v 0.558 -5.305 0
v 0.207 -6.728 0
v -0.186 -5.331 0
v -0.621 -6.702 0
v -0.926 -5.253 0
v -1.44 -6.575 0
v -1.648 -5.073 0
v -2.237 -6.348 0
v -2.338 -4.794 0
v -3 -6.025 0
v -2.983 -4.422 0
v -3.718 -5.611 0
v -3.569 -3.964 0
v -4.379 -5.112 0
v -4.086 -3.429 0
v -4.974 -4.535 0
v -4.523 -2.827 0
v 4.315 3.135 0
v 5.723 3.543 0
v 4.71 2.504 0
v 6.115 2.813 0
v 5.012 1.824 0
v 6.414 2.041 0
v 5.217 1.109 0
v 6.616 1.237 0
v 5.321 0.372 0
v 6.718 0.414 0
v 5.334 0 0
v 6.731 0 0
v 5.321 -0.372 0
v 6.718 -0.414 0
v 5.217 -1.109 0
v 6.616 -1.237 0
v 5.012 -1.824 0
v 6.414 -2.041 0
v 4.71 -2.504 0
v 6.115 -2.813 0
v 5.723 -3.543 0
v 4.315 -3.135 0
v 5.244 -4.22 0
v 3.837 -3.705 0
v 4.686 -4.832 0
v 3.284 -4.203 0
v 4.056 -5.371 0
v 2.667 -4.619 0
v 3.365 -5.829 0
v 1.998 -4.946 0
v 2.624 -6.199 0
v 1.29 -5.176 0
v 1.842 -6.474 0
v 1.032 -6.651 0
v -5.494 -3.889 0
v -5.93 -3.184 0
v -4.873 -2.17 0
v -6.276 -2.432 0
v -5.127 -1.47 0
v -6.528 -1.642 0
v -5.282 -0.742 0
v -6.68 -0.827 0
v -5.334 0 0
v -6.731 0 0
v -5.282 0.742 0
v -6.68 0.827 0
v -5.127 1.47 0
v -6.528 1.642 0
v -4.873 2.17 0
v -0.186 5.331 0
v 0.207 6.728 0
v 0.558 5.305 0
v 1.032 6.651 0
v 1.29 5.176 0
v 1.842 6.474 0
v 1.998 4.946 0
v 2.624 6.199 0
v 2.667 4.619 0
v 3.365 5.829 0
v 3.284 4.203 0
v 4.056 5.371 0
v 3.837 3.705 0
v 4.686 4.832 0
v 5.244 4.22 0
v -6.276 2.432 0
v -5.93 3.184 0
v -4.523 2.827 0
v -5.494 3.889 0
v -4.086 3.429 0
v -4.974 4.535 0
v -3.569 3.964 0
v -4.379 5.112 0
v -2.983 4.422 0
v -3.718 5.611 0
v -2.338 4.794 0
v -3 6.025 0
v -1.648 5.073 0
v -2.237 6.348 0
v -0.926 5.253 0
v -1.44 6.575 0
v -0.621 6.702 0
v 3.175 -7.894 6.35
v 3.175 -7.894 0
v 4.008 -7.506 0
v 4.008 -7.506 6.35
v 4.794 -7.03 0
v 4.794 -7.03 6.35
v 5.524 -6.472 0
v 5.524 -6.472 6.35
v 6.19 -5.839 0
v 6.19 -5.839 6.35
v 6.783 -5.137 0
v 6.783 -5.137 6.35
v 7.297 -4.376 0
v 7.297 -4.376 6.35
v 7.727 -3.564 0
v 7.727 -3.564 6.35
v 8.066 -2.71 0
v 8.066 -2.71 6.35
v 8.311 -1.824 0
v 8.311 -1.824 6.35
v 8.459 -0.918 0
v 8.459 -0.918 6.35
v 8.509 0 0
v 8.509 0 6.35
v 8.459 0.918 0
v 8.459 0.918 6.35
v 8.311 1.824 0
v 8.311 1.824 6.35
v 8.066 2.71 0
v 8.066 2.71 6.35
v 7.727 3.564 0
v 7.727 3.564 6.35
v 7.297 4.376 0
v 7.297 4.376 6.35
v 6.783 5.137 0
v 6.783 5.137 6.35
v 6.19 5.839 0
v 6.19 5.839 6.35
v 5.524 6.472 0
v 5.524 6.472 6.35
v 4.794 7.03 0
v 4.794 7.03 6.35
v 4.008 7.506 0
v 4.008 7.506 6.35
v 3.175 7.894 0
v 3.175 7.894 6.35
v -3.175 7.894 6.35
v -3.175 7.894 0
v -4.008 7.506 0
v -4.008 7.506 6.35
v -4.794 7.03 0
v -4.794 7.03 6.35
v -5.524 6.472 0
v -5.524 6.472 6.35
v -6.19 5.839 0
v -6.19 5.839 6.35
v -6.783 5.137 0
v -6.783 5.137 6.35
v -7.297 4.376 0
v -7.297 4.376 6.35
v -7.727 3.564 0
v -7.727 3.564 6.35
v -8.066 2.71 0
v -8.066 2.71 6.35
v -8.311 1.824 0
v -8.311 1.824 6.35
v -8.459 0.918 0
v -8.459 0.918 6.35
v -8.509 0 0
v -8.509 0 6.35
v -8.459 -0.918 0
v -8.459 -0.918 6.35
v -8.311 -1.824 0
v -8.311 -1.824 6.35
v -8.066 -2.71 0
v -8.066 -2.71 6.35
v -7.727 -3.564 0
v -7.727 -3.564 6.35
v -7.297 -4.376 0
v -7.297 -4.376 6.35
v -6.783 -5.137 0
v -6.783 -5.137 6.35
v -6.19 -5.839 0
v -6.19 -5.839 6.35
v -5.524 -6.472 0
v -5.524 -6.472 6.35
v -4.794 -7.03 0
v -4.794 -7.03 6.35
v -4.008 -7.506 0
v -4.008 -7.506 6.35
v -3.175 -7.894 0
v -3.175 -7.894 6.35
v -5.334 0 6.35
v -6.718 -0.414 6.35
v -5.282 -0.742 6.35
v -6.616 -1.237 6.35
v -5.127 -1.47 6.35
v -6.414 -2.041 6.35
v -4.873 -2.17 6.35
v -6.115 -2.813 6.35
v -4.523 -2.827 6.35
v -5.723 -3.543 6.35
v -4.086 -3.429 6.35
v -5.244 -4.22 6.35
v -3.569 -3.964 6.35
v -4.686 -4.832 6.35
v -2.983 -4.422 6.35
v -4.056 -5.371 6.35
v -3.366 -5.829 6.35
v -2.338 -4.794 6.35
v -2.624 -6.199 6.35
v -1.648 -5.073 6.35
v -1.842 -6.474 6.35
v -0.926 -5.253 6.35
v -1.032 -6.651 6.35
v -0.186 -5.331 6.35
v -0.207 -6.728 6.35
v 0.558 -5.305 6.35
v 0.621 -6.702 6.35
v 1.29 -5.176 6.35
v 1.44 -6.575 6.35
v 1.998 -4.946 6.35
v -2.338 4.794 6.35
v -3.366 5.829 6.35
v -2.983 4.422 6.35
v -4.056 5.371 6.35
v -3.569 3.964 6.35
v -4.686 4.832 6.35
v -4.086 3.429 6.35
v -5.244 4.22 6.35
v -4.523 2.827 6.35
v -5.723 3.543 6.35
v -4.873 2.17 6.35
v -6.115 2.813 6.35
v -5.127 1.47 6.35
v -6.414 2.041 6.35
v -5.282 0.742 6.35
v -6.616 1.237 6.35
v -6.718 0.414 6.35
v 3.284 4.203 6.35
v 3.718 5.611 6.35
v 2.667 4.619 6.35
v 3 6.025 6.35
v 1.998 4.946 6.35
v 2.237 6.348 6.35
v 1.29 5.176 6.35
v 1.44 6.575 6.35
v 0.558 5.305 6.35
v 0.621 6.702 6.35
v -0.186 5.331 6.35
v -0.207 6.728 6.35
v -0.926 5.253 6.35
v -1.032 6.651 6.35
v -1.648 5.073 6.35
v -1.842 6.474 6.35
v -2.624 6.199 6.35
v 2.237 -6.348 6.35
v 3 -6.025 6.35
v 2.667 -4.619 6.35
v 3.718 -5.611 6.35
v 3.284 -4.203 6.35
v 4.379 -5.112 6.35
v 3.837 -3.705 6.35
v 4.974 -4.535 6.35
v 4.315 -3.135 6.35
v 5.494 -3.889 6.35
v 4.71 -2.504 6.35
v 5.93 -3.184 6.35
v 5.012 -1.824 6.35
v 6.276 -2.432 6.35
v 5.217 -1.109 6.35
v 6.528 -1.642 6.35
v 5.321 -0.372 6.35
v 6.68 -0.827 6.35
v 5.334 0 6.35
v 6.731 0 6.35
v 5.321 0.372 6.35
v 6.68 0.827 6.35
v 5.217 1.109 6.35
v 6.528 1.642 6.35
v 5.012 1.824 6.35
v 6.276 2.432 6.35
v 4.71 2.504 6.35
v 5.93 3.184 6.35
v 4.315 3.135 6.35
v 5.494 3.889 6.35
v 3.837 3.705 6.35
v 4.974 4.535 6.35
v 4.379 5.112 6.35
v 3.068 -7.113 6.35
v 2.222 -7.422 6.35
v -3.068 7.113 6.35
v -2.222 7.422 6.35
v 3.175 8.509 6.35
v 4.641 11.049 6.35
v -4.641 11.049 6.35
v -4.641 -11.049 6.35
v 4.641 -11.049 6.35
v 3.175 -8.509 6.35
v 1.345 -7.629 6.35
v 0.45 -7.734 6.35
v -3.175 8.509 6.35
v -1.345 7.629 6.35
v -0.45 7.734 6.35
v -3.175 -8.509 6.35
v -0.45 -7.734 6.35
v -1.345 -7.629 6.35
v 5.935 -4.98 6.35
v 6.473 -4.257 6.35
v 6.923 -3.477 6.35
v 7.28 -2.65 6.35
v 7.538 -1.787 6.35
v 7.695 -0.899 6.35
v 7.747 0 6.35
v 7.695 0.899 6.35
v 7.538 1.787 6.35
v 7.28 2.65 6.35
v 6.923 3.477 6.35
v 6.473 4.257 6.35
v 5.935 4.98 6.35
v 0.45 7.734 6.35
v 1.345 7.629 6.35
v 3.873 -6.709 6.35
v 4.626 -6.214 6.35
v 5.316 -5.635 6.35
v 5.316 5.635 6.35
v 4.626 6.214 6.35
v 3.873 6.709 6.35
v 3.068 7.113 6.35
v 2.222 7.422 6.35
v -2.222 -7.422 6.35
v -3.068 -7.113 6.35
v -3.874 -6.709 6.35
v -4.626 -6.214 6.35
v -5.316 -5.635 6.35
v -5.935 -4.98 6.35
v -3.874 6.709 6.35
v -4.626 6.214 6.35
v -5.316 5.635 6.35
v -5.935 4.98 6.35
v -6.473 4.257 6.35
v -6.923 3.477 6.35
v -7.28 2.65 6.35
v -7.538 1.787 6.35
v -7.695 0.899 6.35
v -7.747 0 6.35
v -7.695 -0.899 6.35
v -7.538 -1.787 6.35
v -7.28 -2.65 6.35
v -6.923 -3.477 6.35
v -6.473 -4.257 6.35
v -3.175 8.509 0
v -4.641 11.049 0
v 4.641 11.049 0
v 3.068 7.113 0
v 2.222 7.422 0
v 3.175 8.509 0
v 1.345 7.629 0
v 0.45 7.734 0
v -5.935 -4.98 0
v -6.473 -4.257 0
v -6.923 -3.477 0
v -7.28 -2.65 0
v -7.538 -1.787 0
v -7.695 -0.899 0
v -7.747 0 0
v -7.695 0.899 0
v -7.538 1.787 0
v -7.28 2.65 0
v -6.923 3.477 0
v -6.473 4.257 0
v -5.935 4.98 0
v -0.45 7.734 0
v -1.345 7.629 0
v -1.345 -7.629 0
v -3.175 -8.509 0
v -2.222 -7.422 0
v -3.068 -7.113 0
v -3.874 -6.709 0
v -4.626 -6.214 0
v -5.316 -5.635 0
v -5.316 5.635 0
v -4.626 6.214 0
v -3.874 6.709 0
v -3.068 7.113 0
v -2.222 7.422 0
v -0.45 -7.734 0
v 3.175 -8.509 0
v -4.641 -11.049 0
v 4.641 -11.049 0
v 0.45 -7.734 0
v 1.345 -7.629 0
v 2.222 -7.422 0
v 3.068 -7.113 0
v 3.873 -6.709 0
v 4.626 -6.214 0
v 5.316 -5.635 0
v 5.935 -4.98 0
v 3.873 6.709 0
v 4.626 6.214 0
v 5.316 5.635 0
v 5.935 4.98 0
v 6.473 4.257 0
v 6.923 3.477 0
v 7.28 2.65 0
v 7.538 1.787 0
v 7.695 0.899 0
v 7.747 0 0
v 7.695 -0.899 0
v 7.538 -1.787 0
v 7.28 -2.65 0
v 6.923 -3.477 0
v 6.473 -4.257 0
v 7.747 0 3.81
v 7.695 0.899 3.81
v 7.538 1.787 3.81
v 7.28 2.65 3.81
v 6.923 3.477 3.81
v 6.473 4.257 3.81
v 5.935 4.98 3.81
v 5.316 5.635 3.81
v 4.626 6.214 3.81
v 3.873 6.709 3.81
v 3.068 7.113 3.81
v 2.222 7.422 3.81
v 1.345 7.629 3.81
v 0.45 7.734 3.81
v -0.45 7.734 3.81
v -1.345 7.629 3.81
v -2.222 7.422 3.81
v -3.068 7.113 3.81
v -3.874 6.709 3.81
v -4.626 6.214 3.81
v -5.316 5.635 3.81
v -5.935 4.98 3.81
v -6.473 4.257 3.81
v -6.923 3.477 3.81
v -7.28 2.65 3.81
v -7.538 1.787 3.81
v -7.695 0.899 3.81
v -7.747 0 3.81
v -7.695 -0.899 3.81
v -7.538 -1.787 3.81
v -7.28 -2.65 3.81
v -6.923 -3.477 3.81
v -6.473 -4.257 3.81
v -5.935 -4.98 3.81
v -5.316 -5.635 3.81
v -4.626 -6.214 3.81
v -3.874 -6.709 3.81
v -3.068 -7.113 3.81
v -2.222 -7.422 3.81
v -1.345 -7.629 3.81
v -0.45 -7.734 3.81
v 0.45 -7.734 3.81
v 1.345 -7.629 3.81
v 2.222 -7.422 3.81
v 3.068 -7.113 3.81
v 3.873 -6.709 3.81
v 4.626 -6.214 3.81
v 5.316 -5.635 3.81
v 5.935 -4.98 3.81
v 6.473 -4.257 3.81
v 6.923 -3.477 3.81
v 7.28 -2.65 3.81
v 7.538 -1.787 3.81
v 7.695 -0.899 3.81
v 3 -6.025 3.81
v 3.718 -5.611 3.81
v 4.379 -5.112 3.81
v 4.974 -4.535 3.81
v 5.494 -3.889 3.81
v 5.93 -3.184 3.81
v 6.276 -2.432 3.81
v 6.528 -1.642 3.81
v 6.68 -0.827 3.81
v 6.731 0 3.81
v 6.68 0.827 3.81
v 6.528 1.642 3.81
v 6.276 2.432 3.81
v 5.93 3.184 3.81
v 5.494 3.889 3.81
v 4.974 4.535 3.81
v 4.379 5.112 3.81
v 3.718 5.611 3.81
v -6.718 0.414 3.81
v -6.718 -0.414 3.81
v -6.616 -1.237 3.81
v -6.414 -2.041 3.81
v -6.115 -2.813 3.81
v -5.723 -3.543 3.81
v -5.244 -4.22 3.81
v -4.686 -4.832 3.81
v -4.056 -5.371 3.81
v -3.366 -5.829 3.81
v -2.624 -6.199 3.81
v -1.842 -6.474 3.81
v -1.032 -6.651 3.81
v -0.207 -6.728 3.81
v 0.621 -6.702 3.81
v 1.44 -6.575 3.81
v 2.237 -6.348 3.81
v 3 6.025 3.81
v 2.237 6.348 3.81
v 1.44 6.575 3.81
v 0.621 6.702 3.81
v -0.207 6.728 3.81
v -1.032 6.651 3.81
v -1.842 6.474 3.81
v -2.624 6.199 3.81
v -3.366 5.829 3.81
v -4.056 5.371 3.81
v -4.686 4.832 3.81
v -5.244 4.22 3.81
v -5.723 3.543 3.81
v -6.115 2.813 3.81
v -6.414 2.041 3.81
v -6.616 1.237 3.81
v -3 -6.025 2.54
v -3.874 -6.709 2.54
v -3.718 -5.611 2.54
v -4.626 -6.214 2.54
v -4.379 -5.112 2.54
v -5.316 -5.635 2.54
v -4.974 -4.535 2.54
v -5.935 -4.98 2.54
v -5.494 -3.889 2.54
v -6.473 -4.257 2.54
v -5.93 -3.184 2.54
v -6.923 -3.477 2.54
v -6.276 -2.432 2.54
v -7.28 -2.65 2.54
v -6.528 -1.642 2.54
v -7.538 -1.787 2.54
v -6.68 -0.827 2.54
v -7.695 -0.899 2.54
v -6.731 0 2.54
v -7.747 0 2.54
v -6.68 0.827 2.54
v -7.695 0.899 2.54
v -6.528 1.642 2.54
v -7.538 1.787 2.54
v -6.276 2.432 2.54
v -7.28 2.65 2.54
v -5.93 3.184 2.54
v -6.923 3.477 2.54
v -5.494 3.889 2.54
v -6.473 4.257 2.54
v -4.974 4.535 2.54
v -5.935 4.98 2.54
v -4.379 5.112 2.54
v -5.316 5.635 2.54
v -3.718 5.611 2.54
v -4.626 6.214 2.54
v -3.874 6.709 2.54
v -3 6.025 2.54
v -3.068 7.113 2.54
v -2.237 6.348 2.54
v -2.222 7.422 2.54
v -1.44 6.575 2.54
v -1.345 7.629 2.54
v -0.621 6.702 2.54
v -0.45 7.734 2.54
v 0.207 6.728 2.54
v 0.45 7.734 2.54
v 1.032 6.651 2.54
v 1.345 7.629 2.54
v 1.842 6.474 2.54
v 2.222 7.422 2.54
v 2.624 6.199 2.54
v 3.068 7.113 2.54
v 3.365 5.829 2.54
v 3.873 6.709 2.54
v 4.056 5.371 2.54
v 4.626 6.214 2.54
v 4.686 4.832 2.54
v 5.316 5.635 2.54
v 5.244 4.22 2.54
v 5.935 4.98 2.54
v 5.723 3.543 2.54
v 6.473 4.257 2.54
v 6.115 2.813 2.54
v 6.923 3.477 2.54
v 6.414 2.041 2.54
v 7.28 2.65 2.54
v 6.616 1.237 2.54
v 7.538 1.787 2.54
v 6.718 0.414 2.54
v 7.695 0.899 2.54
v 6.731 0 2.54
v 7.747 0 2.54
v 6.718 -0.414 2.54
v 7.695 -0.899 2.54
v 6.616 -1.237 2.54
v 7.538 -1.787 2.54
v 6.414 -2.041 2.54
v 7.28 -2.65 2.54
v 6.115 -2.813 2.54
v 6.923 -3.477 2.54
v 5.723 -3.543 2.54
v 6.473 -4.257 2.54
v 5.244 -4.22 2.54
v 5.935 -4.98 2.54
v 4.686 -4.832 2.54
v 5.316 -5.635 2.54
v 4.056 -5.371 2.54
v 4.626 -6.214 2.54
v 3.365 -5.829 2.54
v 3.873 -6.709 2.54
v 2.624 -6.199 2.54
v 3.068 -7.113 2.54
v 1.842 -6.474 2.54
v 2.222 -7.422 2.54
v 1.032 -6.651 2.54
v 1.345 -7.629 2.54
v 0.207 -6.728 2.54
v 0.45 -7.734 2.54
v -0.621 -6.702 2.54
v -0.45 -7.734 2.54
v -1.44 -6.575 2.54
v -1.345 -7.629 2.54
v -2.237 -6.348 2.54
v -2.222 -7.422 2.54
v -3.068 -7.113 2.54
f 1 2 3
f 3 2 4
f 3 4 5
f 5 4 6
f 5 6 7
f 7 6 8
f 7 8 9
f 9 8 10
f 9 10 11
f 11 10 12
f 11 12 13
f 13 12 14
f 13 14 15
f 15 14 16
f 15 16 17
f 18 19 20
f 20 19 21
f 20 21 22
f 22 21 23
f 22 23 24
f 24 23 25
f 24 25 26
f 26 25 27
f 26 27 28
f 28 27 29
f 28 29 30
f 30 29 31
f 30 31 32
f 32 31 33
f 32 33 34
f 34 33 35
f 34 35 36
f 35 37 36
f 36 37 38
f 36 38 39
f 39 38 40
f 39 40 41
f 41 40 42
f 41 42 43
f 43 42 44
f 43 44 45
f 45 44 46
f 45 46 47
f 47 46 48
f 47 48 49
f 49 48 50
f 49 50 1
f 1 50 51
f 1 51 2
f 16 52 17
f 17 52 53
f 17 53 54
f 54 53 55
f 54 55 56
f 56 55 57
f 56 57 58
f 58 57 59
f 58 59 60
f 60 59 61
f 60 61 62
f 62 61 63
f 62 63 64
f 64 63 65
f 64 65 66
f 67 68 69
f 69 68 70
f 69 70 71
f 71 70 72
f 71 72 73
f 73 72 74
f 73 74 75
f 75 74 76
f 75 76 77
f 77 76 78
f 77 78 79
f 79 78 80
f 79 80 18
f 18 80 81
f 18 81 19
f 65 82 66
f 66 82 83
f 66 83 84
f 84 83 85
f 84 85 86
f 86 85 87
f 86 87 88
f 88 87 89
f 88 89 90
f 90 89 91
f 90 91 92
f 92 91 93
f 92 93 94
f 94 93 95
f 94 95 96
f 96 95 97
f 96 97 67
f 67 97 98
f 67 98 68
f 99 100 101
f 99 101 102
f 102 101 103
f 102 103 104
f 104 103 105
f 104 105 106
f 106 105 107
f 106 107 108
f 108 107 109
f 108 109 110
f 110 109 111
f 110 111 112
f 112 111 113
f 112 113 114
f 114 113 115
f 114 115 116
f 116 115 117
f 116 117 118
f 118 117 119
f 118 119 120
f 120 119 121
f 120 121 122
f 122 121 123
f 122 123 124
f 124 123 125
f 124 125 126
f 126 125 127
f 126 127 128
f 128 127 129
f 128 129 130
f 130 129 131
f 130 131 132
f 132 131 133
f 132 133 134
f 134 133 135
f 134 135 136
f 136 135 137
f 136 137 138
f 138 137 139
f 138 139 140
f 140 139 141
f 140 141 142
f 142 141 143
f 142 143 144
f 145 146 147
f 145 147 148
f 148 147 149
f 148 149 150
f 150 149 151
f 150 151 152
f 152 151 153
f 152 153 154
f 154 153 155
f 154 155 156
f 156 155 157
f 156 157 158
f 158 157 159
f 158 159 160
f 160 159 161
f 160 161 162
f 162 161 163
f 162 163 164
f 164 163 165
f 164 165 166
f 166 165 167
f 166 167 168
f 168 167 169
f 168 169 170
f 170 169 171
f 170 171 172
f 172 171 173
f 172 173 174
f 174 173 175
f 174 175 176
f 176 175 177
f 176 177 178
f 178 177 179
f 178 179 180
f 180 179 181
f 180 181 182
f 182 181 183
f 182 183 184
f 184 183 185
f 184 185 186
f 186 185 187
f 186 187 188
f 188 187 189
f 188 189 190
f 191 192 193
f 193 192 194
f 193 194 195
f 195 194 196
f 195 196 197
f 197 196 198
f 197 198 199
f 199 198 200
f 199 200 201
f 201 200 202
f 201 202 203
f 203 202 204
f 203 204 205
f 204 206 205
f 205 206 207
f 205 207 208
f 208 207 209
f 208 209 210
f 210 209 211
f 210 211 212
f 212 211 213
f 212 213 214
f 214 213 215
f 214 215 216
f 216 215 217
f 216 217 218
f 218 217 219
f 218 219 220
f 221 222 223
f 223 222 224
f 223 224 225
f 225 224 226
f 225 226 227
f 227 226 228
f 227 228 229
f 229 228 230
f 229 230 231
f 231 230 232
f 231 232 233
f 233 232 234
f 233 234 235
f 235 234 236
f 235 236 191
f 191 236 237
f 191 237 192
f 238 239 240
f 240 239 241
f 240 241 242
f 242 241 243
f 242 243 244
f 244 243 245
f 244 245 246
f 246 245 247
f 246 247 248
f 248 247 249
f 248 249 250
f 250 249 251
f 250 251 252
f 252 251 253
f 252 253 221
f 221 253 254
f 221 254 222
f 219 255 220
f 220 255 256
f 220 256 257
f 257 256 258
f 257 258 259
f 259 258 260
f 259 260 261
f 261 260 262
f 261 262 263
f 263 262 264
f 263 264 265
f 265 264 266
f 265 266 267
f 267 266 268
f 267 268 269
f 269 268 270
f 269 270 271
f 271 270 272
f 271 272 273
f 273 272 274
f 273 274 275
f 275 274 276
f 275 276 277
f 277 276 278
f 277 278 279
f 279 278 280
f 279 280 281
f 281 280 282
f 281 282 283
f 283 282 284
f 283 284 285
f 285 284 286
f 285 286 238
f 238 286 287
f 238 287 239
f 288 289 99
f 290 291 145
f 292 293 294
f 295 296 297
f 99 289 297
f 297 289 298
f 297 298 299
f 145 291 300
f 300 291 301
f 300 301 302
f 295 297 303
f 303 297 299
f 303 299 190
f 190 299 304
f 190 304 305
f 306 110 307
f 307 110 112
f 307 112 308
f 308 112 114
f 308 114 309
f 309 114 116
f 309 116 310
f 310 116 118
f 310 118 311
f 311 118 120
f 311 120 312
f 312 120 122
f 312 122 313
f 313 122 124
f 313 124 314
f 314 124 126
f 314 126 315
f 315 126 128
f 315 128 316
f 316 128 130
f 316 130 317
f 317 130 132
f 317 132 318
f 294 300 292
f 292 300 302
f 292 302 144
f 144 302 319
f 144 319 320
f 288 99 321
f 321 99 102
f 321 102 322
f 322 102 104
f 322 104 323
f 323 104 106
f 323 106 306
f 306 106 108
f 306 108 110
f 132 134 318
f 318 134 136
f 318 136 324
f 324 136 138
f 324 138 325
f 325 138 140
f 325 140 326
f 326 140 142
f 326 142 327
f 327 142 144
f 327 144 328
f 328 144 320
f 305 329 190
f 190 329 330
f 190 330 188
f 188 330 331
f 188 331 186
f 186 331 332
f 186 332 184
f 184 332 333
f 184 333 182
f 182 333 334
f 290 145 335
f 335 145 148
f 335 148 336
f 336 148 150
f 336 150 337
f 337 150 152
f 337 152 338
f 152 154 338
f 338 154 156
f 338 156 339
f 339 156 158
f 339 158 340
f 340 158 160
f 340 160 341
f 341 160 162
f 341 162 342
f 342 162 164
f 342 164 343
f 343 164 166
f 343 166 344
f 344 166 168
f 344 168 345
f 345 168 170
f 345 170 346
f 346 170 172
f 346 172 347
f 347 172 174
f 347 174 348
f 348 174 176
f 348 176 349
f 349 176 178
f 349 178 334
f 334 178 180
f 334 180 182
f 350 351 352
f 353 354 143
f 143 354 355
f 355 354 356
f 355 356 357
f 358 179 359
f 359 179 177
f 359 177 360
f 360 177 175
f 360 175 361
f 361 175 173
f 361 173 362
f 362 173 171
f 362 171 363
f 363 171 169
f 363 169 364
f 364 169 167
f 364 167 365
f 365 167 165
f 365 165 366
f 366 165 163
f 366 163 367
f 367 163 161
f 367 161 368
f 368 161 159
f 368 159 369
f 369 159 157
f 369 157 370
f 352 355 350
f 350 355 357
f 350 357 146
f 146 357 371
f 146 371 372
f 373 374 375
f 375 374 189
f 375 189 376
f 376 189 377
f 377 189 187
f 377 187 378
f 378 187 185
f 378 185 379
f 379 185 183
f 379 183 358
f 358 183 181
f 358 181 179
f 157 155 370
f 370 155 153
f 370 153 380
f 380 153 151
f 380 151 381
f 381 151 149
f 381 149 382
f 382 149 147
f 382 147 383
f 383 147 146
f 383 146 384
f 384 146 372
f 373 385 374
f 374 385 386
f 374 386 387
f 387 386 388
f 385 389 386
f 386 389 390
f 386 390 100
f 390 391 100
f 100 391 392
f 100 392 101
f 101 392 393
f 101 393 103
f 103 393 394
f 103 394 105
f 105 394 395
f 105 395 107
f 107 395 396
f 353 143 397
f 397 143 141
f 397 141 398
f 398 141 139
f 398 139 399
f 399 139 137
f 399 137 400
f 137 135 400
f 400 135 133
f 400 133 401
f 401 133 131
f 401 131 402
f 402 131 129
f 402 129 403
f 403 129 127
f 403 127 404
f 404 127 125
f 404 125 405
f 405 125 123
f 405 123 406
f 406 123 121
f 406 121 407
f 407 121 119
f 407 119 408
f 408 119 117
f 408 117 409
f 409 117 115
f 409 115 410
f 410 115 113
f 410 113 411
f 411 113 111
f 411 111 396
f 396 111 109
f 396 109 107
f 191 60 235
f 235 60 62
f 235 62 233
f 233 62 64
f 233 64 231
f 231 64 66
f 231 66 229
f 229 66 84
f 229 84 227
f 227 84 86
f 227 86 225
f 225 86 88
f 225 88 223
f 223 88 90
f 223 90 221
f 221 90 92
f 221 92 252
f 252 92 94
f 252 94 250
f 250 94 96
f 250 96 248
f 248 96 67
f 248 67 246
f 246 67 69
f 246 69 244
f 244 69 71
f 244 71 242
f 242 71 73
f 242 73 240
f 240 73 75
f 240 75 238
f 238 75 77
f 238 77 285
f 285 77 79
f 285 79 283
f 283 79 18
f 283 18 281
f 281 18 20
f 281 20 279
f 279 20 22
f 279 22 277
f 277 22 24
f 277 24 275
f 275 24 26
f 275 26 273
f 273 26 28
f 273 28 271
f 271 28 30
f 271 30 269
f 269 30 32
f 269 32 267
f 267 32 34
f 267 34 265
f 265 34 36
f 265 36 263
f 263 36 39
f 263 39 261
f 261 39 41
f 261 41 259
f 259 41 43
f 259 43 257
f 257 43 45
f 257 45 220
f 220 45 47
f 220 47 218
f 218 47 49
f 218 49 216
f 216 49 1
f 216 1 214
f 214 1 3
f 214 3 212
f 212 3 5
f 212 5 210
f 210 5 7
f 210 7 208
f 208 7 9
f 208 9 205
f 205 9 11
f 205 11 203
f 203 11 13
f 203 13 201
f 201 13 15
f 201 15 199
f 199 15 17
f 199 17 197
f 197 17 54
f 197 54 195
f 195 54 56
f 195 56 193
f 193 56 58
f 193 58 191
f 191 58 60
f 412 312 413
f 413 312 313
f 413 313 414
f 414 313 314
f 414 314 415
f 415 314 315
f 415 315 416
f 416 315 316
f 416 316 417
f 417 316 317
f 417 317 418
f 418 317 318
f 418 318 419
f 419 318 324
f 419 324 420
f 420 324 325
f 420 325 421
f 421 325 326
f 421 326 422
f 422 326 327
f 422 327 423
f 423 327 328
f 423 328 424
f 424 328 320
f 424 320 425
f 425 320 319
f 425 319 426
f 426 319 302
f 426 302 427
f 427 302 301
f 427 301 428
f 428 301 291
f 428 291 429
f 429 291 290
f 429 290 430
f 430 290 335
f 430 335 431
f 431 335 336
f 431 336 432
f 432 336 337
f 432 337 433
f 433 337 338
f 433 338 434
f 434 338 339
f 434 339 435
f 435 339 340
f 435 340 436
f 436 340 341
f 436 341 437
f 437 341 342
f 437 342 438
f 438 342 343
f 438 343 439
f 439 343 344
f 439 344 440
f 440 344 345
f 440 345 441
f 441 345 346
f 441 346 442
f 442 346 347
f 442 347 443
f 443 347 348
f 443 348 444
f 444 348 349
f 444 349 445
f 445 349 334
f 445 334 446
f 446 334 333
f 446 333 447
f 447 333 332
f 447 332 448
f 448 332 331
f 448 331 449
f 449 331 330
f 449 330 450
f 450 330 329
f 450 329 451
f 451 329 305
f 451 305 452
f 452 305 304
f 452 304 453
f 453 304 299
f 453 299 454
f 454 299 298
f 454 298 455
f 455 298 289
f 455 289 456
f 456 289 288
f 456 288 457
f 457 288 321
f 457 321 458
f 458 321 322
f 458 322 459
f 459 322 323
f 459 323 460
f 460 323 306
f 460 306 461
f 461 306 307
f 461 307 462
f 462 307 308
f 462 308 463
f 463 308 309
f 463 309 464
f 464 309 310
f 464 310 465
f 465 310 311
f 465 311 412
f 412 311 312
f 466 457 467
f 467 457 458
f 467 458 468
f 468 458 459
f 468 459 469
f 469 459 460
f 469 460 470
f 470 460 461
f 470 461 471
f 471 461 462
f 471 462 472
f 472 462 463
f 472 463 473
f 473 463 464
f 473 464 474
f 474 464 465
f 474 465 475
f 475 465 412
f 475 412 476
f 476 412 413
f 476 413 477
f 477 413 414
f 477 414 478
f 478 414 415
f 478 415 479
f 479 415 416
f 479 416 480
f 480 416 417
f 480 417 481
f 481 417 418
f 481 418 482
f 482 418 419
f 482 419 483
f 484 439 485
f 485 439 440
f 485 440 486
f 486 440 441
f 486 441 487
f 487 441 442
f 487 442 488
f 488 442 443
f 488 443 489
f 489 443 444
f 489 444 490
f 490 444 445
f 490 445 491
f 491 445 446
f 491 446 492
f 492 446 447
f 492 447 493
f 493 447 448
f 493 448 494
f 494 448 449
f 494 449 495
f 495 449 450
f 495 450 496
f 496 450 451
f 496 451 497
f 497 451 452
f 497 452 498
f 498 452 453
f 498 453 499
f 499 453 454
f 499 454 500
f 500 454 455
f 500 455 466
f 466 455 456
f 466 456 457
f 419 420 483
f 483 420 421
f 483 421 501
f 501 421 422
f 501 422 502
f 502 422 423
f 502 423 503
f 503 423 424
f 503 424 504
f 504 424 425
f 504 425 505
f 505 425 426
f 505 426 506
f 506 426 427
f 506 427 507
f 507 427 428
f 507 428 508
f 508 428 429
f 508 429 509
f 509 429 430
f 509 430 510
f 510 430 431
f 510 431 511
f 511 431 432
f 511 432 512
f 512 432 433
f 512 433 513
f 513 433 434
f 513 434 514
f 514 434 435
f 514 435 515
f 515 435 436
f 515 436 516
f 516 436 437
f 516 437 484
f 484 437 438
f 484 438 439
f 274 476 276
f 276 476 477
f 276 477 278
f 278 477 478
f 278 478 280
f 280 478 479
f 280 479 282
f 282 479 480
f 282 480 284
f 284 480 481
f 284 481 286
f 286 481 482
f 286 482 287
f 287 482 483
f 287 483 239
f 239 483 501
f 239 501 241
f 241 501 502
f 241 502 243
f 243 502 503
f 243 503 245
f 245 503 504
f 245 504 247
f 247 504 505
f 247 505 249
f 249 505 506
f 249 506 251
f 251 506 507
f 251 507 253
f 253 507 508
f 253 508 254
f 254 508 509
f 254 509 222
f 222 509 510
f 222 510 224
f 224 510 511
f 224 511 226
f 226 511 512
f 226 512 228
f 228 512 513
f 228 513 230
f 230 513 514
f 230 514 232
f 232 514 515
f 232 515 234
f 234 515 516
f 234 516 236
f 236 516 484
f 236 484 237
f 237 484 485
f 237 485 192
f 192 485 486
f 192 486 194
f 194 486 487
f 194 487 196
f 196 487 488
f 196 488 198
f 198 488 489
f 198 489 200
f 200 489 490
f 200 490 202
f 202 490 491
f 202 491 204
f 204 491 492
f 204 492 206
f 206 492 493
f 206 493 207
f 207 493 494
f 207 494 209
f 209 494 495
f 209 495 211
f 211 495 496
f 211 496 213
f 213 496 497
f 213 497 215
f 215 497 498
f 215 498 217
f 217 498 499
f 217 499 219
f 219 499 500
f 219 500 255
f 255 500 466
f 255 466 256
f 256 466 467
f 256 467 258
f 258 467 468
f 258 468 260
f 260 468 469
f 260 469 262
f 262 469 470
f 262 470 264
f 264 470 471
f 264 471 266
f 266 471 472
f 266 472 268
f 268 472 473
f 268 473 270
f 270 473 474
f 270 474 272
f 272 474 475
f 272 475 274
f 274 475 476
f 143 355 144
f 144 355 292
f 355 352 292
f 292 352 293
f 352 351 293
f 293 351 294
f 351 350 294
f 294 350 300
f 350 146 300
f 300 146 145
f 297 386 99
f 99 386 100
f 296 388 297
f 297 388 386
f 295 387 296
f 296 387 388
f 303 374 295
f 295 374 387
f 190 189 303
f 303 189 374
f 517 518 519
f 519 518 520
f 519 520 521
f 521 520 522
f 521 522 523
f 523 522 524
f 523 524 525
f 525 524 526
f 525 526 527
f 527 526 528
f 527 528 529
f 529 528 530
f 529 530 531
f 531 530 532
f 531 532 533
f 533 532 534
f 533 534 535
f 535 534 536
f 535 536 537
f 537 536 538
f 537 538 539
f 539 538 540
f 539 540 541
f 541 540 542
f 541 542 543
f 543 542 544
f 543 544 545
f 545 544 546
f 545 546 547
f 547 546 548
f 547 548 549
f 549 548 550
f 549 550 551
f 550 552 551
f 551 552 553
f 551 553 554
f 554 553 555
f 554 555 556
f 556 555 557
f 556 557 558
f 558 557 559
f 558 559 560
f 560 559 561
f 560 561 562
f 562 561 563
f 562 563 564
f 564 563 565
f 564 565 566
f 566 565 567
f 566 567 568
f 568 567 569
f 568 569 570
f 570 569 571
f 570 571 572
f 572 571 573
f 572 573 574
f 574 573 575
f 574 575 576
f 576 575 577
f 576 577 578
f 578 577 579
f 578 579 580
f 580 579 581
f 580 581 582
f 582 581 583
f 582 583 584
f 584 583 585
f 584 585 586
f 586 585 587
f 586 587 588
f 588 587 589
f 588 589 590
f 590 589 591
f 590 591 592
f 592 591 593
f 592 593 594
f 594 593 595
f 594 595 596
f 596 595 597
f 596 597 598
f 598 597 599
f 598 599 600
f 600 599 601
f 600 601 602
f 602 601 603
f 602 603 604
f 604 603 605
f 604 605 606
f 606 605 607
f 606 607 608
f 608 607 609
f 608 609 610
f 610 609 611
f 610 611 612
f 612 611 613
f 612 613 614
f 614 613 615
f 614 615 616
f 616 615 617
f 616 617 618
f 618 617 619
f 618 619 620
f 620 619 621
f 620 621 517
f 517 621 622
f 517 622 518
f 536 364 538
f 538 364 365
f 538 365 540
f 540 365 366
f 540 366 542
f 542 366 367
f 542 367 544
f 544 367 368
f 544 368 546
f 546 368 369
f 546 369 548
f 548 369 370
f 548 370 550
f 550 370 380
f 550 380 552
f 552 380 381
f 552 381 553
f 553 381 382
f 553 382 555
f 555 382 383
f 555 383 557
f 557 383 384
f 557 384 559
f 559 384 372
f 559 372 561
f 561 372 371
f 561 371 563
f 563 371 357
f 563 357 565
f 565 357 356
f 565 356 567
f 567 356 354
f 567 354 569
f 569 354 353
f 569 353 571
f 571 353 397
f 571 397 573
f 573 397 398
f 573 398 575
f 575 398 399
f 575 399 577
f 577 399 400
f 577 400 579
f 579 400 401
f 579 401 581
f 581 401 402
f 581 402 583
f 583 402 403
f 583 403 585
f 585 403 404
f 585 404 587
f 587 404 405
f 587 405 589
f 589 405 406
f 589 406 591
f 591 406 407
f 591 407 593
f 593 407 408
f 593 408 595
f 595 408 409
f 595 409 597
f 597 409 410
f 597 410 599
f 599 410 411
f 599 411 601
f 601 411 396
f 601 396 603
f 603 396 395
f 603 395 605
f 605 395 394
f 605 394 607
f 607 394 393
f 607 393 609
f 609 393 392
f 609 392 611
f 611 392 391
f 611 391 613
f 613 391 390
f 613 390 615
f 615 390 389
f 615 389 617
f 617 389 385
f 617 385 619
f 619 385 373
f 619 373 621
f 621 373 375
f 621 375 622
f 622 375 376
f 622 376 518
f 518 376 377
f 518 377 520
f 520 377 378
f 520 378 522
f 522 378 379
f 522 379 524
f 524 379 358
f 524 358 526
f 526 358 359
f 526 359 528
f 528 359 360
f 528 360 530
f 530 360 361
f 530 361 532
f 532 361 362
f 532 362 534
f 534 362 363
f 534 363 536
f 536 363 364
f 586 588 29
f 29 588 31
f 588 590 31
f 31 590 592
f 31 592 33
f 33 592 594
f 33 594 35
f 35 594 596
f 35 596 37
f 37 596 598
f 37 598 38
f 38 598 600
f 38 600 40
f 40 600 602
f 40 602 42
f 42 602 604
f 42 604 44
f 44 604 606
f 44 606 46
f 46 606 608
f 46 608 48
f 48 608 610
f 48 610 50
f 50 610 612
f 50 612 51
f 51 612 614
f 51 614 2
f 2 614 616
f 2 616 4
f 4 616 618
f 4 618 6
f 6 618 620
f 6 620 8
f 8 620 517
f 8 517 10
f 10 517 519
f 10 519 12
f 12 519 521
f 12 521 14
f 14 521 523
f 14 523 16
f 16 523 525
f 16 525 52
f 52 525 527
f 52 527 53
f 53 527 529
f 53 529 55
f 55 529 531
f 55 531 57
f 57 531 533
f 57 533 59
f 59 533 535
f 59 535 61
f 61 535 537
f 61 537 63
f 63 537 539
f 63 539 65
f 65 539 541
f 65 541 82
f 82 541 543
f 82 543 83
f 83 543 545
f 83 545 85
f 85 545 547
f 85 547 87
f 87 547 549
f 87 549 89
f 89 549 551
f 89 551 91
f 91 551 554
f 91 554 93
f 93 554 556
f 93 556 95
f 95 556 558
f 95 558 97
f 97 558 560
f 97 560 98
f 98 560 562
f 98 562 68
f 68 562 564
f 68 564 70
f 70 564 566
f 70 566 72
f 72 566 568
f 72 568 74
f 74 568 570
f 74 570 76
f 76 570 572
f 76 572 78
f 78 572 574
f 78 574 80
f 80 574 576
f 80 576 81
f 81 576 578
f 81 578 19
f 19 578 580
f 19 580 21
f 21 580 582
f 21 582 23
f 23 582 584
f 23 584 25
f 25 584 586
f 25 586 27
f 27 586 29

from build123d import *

# Parameters (mm, degrees)
SKETCH1_R           = 8.509
SKETCH1_R_2         = 5.334
BOSS_EXTRUDE1_DEPTH = 6.35
SKETCH2_R           = 7.747
SKETCH2_R_2         = 6.731
CUT_EXTRUDE1_DEPTH  = 2.54
BOSS_EXTRUDE2_DEPTH = 6.35


with BuildPart() as part:
    # Sketch1 → Boss-Extrude1 (new body)
    with BuildSketch(Plane.XY):
        Circle(SKETCH1_R)
        Circle(SKETCH1_R_2, mode=Mode.SUBTRACT)
    extrude(amount=BOSS_EXTRUDE1_DEPTH)

    # Sketch2 → Cut-Extrude1 (cut)
    with BuildSketch(Plane.XY.offset(6.35)):
        Circle(SKETCH2_R)
        Circle(SKETCH2_R_2, mode=Mode.SUBTRACT)
    cut_extrude1 = extrude(amount=-CUT_EXTRUDE1_DEPTH, mode=Mode.SUBTRACT)

    # Sketch3 → Boss-Extrude2 (add)
    with BuildSketch(Plane.XY):
        with BuildLine():
            Line((-3.175, 7.894457296), (-3.175, 8.509))
            Line((-3.175, 8.509), (-4.641469684, 11.049))
            Line((-4.641469684, 11.049), (4.641469684, 11.049))
            Line((4.641469684, 11.049), (3.175, 8.509))
            Line((3.175, 8.509), (3.175, 7.894457296))
            ThreePointArc((3.175, 7.894457296), (0, 8.509), (-3.175, 7.894457296))
        make_face()
    boss_extrude2 = extrude(amount=BOSS_EXTRUDE2_DEPTH)

    # Mirror1: Boss-Extrude2 across plane
    add(boss_extrude2.mirror(Plane.ZX))

    # Mirror2: Cut-Extrude1 across plane
    add(cut_extrude1.mirror(Plane(origin=(0, 0, 3.175), x_dir=(1, 0, 0), z_dir=(0, 0, -1))), mode=Mode.SUBTRACT)


solid = part.part
